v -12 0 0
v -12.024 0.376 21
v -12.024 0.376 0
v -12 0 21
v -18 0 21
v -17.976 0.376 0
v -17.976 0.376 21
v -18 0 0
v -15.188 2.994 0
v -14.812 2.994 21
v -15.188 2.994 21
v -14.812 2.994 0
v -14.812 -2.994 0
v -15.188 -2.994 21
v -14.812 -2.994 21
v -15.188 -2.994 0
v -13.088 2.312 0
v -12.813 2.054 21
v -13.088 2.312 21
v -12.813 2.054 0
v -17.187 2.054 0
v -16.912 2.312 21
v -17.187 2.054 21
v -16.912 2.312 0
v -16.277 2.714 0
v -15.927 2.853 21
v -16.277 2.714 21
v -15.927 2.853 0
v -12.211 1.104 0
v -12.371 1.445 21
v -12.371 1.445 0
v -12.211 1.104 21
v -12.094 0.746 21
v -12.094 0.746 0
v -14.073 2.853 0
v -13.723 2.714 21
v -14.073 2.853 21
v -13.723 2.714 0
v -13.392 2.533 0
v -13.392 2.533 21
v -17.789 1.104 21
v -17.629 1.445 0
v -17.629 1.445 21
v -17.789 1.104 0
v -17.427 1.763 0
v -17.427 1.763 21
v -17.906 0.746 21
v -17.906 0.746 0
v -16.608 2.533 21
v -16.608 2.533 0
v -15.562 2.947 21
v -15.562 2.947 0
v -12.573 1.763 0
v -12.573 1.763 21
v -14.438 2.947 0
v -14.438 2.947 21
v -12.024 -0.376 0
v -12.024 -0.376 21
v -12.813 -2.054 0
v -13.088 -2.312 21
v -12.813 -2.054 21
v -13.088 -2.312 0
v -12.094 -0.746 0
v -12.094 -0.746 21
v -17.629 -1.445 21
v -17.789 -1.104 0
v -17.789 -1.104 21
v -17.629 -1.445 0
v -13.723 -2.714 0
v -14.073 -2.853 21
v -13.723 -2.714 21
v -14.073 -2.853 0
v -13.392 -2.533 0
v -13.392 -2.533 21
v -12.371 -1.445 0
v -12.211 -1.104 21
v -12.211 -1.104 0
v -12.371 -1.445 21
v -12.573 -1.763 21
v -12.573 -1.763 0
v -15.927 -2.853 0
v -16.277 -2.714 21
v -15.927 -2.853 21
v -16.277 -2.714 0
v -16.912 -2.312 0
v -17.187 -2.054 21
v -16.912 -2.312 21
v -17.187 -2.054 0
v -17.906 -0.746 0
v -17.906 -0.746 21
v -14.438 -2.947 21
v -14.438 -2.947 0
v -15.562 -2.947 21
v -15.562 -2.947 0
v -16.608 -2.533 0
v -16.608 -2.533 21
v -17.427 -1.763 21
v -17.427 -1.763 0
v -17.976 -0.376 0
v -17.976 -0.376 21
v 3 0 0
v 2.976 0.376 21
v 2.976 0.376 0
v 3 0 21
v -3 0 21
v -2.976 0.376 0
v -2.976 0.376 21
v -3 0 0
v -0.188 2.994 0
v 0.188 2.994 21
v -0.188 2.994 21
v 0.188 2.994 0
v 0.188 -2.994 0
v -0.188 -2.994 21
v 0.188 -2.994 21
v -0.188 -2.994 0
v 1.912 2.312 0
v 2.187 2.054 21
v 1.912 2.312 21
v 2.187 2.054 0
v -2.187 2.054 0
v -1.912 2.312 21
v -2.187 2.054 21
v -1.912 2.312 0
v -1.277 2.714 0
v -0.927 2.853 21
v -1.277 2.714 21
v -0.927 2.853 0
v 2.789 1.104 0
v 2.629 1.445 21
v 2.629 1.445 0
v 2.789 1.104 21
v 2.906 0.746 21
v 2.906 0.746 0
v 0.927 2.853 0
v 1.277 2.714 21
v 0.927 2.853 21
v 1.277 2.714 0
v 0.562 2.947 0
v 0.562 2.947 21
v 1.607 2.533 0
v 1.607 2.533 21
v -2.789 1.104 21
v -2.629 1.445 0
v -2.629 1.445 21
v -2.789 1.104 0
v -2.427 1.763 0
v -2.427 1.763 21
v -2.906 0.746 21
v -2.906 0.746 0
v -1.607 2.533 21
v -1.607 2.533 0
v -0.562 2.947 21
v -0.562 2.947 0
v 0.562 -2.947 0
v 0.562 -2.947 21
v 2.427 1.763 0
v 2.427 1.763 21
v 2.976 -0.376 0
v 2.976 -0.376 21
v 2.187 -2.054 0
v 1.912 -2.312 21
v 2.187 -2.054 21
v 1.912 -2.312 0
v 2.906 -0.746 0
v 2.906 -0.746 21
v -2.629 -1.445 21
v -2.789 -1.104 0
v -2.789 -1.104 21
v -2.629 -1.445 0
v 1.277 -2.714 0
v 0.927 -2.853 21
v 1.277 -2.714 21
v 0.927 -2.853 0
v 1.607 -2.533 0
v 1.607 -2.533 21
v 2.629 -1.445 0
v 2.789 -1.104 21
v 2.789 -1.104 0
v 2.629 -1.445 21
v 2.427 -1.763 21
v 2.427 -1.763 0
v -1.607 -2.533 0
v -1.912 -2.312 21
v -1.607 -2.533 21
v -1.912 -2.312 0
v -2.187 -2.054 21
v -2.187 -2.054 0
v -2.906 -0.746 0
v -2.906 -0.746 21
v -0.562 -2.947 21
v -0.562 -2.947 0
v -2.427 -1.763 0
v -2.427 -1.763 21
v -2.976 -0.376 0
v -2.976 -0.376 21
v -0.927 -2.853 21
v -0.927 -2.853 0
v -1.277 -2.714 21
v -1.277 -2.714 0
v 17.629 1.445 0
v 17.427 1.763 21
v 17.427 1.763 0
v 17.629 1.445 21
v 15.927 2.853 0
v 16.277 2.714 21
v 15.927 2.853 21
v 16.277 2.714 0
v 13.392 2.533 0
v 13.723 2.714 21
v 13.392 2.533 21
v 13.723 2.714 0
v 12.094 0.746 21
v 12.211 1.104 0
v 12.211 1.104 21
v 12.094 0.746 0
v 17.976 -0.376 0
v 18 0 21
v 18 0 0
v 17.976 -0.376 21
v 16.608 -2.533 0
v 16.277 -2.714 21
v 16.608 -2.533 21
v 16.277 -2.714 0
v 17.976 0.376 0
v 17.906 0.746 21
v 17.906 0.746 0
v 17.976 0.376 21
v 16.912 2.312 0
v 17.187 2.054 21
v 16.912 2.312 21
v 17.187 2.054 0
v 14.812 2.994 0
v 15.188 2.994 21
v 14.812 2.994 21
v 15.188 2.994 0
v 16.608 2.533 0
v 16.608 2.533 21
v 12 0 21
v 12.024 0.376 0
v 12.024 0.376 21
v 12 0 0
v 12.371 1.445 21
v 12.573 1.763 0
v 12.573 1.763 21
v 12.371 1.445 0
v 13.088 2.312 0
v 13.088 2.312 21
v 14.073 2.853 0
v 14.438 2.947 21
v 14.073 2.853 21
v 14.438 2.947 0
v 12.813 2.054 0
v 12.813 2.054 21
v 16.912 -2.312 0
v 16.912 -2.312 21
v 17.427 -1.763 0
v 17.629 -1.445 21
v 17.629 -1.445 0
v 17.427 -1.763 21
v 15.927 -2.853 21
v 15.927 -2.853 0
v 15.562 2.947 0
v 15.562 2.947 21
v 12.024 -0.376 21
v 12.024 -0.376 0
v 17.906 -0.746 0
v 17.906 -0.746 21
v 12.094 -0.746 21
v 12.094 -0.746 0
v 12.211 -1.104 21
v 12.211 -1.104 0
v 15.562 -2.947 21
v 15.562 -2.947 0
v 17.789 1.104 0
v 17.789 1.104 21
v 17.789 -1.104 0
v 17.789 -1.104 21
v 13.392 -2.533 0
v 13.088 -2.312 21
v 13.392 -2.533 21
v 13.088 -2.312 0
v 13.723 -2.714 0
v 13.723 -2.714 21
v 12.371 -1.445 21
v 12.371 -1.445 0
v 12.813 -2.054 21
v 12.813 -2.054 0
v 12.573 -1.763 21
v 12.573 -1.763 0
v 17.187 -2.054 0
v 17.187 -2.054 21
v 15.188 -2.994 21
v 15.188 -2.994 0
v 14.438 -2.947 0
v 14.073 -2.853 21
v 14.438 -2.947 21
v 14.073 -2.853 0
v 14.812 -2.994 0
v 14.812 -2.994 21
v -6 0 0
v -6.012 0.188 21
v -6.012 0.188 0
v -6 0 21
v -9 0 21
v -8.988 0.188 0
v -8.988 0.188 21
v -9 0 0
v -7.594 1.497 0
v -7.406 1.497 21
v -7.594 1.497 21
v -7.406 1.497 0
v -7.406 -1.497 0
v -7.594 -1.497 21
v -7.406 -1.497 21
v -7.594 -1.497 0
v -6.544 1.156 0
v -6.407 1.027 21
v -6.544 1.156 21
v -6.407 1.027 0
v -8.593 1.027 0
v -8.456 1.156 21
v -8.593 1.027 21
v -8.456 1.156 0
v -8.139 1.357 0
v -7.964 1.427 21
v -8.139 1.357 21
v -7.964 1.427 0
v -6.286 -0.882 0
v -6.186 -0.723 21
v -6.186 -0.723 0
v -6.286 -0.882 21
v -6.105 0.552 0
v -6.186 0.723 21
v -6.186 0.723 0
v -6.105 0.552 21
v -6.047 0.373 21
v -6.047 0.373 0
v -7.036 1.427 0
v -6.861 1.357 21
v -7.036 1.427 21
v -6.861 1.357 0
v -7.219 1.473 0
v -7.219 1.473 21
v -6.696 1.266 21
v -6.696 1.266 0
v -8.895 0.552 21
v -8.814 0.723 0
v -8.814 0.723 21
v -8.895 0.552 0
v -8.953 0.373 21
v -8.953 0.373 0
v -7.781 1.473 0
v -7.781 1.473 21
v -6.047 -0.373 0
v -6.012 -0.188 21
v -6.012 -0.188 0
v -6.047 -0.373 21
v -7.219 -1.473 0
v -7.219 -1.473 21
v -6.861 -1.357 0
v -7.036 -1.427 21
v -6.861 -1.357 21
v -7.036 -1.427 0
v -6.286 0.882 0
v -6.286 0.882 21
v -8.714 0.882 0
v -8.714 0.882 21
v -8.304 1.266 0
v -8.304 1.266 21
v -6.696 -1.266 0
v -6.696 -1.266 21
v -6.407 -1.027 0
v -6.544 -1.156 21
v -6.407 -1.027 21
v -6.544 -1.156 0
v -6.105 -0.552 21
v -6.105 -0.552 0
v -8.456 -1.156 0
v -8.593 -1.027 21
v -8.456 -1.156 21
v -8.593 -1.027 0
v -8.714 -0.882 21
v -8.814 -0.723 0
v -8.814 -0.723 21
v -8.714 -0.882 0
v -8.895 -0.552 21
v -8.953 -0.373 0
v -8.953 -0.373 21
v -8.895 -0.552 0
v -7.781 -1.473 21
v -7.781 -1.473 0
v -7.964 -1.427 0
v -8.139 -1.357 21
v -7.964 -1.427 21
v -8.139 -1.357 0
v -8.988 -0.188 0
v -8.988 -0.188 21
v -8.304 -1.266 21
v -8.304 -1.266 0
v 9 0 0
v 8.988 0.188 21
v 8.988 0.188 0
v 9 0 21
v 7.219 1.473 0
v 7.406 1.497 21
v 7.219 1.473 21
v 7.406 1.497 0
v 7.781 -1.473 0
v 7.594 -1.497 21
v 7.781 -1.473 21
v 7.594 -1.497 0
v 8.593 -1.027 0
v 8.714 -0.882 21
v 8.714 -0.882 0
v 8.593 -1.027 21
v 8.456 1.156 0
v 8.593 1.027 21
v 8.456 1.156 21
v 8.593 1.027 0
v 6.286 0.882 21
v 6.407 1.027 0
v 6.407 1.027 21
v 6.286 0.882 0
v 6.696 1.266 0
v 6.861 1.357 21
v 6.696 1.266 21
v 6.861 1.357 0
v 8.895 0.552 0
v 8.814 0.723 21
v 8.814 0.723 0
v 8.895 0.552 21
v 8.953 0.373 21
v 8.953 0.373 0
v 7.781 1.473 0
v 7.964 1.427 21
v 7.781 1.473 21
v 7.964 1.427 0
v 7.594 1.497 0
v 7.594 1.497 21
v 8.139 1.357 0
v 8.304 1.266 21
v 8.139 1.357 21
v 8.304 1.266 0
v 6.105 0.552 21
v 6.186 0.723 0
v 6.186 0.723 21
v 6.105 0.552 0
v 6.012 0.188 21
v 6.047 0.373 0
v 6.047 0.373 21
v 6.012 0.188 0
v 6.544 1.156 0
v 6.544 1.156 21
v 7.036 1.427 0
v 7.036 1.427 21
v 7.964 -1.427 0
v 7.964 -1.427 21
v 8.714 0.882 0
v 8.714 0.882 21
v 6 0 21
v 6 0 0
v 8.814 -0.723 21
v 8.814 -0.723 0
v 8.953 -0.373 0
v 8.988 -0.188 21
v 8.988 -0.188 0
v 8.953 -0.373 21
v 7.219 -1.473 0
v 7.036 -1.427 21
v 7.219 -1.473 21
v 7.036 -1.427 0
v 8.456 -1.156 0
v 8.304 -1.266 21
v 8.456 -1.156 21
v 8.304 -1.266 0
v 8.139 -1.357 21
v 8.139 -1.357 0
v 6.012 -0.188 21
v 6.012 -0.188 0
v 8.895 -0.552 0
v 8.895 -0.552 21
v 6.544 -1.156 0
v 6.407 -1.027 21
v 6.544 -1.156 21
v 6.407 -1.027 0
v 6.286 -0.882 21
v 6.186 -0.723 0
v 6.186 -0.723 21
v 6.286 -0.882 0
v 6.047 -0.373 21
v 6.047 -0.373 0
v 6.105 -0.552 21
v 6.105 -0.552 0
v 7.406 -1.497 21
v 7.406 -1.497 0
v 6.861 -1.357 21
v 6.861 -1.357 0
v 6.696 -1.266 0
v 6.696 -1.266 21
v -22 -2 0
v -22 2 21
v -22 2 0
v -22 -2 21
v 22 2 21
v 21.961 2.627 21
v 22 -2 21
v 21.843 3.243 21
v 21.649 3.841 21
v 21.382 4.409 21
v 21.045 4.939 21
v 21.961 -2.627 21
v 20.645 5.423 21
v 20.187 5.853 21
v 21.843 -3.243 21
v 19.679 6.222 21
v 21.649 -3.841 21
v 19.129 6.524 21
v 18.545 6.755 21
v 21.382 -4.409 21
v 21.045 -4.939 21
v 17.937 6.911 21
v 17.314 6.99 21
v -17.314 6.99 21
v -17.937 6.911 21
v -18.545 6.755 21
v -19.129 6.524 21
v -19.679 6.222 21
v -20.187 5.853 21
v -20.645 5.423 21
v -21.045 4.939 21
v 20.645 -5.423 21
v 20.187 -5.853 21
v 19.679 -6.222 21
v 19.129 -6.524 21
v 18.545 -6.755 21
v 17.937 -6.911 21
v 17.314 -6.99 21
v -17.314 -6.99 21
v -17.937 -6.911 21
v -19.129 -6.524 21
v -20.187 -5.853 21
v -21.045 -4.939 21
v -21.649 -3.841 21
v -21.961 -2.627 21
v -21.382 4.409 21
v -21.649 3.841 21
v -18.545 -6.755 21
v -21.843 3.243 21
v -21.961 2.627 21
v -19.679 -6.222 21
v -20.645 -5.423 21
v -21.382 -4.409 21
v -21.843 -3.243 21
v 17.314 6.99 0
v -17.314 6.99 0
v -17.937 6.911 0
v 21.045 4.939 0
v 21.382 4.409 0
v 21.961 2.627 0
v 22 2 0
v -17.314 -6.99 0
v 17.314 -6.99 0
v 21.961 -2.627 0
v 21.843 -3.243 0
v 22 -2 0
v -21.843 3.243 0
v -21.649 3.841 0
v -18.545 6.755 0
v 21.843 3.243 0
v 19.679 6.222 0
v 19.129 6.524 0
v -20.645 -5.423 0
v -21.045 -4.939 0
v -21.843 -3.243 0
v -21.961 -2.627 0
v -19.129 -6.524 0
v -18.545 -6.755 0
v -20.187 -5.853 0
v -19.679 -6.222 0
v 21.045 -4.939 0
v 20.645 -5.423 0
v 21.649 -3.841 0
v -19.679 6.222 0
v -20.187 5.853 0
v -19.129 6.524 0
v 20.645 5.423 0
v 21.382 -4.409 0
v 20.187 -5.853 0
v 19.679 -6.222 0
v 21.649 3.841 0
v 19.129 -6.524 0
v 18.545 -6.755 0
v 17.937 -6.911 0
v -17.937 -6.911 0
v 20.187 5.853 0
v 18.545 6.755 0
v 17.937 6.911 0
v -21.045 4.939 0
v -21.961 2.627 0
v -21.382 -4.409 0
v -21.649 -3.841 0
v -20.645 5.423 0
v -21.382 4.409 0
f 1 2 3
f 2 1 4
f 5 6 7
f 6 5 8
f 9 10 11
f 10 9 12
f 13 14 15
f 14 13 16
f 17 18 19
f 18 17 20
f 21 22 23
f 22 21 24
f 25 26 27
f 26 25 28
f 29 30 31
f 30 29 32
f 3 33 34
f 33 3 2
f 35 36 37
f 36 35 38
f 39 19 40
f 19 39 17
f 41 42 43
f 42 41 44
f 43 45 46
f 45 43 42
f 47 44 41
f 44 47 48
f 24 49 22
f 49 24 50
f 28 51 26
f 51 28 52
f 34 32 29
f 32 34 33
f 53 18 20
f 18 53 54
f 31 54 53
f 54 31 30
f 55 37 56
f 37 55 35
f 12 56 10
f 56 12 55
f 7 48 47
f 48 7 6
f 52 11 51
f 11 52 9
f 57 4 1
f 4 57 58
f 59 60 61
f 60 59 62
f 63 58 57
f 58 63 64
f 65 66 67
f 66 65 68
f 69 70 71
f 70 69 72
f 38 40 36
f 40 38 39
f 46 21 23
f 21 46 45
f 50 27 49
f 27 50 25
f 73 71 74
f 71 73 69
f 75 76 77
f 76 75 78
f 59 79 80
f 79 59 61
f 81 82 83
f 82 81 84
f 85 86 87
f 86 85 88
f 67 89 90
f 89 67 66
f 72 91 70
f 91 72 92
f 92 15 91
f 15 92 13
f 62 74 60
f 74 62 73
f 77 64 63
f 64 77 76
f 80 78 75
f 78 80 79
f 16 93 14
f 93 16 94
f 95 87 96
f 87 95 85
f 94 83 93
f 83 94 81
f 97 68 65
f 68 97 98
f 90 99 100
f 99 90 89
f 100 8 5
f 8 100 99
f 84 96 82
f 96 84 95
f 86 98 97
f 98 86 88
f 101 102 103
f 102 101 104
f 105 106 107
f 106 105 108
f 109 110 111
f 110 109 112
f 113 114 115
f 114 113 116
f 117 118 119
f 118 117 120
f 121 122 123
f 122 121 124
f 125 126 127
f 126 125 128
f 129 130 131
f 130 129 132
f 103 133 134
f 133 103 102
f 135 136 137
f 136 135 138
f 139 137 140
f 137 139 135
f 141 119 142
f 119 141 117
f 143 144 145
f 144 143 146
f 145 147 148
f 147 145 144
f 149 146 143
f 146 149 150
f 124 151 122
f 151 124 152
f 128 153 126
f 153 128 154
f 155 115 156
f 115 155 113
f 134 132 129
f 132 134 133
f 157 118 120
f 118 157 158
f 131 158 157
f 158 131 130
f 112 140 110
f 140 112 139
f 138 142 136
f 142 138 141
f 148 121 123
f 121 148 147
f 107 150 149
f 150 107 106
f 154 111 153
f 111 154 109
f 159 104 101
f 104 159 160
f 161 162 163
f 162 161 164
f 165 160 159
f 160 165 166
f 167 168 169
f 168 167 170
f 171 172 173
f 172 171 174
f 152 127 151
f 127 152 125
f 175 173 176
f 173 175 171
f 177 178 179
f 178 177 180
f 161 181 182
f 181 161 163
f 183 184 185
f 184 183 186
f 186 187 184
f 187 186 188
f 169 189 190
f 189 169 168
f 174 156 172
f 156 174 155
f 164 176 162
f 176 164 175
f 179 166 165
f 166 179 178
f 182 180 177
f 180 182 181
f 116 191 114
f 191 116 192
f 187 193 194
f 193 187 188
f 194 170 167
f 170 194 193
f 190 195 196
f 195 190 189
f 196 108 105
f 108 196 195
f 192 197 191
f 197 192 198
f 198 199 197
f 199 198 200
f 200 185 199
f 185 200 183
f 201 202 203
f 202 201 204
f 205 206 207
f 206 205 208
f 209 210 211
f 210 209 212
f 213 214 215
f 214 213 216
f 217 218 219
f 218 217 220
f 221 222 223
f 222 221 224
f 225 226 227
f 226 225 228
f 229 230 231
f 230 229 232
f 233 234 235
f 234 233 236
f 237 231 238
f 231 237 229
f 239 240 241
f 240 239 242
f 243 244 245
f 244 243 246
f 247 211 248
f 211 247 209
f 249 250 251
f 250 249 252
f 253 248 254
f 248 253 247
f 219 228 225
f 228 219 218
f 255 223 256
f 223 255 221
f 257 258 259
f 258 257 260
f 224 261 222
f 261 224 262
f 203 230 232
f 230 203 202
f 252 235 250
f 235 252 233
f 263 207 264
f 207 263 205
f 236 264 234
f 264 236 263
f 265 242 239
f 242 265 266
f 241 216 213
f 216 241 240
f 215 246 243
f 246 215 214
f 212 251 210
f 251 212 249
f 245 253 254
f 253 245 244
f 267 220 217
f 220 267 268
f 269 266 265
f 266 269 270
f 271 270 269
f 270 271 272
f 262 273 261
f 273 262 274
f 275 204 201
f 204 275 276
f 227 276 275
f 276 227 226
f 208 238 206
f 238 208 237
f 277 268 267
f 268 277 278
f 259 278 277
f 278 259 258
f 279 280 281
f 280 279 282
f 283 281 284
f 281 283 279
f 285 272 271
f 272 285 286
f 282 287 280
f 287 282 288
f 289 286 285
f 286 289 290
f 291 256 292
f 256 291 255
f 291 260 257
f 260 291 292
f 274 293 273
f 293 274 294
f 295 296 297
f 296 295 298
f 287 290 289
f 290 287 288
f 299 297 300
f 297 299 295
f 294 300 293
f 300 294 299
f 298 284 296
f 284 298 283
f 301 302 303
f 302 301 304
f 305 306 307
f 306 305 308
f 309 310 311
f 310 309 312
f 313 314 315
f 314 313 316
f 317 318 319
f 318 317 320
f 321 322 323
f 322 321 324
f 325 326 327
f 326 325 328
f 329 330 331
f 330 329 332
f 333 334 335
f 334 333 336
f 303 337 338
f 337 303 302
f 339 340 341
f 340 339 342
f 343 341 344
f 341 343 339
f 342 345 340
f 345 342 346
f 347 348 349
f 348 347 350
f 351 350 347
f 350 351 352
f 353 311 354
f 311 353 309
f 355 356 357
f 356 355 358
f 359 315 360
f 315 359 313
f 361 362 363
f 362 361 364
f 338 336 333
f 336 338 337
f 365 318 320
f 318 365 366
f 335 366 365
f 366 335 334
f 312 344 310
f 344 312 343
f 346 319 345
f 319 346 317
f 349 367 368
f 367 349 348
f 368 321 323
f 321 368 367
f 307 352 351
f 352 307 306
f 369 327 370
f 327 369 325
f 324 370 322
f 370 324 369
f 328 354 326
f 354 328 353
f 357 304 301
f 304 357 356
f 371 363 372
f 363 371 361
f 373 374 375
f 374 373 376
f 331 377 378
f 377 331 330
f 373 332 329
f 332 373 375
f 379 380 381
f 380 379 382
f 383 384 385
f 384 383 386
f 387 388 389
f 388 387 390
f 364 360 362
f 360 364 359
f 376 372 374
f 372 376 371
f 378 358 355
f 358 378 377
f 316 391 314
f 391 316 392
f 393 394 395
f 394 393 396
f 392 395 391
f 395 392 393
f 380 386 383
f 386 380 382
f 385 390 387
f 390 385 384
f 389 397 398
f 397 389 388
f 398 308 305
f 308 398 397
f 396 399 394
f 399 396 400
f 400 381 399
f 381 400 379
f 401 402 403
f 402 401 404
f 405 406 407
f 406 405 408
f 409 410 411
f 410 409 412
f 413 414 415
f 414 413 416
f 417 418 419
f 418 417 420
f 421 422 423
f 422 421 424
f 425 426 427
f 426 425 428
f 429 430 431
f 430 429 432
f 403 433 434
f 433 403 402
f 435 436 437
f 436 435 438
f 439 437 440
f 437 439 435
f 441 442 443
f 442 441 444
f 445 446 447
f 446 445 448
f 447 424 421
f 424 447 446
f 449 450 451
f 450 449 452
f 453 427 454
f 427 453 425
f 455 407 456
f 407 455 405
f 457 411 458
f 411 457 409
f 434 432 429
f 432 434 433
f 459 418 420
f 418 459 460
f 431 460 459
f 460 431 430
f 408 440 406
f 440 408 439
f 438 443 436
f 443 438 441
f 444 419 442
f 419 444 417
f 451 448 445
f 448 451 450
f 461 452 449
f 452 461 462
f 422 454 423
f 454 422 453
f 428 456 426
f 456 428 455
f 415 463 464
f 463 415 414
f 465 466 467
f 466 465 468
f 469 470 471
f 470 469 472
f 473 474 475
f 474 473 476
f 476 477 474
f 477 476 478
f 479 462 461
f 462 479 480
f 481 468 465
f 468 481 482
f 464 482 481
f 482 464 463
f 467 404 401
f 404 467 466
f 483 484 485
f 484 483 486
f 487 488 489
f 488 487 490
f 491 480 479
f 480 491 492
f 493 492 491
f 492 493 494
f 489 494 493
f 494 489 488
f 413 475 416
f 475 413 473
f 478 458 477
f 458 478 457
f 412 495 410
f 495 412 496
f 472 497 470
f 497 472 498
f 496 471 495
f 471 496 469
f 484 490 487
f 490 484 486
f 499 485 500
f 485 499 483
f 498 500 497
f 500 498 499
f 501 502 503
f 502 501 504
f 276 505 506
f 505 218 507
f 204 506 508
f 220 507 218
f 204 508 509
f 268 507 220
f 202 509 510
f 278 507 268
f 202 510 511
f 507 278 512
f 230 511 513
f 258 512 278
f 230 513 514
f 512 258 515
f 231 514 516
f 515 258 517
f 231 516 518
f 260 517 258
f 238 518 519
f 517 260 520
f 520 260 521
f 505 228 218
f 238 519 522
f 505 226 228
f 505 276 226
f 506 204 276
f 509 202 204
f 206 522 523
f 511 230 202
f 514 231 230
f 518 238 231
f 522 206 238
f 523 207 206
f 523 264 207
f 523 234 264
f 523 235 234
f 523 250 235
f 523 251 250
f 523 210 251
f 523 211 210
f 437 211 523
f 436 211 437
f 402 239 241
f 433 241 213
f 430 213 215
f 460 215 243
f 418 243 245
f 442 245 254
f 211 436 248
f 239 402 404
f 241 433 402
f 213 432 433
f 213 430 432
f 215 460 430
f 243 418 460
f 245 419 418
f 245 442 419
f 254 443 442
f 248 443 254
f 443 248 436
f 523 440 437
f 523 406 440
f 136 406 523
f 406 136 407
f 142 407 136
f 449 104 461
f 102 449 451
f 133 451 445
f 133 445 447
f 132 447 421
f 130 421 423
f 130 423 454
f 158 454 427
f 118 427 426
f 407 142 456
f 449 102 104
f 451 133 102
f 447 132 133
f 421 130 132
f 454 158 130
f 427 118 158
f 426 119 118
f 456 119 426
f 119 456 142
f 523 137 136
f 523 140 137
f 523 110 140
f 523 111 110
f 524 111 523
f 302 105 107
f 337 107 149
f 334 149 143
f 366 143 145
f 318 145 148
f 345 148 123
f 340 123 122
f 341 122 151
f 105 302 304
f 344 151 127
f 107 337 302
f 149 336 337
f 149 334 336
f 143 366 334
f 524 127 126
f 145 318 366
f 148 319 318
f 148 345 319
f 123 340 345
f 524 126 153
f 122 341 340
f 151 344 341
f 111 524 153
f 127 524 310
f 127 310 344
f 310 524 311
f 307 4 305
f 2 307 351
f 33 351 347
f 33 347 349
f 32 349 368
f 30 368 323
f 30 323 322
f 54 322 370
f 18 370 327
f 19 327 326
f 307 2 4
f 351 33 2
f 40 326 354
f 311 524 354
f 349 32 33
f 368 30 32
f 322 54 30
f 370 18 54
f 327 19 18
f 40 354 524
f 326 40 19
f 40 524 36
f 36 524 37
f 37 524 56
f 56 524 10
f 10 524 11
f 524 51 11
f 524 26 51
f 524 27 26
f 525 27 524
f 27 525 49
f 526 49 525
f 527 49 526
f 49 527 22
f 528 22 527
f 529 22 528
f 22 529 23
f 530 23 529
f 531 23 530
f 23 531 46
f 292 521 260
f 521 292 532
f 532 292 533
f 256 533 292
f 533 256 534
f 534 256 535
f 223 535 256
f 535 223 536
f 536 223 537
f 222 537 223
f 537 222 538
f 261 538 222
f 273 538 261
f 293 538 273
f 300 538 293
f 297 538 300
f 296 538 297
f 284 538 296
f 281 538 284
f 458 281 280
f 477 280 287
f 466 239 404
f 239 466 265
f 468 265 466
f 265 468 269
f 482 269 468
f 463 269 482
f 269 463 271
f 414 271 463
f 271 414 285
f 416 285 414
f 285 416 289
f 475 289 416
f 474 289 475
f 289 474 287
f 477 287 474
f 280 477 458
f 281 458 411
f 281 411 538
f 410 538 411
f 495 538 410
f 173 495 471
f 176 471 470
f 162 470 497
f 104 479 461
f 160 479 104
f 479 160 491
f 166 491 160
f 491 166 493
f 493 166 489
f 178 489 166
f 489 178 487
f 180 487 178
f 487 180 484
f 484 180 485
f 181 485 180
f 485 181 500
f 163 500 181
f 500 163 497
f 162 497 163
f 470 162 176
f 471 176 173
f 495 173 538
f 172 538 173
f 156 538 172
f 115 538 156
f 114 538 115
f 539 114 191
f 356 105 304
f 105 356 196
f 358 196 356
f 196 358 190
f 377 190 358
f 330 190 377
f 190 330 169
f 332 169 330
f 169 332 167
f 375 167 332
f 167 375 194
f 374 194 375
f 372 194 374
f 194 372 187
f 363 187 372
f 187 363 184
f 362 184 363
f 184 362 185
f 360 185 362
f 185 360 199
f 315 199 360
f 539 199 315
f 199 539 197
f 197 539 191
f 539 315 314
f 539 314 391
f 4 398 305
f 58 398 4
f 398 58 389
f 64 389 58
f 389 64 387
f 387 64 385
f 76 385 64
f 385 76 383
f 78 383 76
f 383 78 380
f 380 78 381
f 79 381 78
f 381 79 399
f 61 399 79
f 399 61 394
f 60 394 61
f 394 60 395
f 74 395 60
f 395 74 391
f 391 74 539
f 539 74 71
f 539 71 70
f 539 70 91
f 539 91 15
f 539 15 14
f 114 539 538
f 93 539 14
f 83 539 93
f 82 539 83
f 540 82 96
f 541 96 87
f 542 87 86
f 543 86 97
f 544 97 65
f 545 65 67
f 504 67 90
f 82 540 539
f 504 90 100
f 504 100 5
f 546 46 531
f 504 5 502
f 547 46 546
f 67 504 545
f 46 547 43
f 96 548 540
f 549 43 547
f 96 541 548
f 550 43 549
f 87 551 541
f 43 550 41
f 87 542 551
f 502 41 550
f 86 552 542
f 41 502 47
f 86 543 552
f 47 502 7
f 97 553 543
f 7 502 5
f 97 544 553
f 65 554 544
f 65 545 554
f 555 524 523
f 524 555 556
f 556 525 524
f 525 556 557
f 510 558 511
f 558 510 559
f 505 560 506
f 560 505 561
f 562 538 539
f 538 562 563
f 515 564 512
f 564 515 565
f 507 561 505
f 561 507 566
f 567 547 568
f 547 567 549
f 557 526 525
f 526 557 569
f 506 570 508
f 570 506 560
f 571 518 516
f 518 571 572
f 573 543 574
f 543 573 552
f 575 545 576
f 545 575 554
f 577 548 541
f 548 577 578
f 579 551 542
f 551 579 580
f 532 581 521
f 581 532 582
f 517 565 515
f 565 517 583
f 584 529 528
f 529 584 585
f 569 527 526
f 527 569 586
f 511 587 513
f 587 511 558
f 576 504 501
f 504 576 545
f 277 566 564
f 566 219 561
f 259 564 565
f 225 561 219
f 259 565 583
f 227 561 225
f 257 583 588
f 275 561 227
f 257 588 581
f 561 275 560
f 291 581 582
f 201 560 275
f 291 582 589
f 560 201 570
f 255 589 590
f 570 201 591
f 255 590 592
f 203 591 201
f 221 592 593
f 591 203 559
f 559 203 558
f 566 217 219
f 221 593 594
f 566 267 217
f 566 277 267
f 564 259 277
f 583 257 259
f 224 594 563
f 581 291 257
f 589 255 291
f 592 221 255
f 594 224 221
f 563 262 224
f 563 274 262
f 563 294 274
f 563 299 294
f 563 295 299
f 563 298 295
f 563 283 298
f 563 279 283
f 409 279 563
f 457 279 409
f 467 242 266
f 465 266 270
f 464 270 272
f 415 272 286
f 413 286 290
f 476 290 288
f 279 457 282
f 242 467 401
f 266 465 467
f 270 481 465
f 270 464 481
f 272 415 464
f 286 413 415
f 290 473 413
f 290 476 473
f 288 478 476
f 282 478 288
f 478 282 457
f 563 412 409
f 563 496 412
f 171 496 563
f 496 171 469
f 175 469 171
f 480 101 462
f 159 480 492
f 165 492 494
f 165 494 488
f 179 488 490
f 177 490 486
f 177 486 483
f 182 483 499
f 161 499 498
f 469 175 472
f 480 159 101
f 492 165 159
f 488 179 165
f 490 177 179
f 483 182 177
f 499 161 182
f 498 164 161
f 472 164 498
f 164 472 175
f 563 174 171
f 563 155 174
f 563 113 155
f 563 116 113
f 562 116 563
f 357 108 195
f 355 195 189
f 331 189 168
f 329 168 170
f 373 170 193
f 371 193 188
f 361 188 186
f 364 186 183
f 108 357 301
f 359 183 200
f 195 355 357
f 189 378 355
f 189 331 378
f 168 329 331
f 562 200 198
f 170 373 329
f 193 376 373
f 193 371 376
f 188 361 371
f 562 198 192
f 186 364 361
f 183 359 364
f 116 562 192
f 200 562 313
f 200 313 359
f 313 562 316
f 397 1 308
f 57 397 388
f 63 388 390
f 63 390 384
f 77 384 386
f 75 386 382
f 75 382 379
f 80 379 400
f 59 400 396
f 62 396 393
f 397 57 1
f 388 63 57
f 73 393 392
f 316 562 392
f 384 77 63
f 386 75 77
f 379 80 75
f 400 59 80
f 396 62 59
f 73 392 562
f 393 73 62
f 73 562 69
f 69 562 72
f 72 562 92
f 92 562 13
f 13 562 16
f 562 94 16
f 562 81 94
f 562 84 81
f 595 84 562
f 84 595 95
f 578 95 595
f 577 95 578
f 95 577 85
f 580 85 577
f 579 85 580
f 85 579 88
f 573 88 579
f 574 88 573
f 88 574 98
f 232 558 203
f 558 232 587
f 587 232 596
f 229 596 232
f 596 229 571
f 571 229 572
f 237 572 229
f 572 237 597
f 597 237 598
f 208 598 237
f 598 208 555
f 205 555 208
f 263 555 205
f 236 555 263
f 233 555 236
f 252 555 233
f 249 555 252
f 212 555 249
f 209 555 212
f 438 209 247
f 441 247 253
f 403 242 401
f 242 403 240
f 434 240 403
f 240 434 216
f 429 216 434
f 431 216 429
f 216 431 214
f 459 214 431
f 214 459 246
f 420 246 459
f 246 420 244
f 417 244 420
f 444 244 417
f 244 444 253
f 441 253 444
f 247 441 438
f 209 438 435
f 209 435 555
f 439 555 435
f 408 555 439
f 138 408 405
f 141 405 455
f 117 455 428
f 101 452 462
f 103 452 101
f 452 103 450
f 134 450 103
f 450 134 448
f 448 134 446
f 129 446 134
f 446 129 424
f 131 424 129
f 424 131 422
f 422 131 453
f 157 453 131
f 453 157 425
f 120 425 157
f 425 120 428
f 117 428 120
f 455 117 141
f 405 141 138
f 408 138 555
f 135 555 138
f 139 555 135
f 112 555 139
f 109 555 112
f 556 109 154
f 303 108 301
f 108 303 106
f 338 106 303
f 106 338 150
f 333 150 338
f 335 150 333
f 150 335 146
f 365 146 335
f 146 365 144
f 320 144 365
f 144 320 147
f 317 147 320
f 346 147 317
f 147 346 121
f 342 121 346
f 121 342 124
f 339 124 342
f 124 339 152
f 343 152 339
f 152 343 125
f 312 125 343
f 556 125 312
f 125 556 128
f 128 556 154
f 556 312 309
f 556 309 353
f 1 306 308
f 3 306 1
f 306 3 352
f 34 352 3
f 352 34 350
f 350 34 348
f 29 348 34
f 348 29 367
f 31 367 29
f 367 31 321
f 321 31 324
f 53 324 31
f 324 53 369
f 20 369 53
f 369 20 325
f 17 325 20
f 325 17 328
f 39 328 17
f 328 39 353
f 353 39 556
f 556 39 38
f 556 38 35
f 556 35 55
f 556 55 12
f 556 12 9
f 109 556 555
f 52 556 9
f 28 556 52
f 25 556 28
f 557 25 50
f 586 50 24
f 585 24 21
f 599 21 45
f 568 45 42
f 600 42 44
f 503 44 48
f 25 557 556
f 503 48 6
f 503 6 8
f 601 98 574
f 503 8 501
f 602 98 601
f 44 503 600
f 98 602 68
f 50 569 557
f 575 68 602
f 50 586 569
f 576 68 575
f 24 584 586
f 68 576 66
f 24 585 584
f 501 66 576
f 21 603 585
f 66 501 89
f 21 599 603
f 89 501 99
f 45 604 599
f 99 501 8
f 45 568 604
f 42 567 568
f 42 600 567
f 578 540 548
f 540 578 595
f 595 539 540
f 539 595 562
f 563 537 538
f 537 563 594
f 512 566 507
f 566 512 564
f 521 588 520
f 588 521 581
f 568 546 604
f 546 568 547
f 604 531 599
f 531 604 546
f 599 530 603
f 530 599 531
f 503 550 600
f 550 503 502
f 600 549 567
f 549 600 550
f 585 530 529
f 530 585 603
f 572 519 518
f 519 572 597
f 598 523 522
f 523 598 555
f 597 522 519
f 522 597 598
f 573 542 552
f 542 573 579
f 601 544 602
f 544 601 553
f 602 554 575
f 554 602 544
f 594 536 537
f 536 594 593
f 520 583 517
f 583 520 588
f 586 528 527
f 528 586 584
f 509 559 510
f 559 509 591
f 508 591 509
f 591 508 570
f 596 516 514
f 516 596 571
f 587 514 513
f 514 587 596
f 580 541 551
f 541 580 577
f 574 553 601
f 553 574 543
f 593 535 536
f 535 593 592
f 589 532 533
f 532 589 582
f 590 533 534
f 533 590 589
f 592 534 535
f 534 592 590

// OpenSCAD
$fn = 50;


difference() {
	union() {
		hull() {
			translate(v = [-17.0000000000, 2.0000000000, 0]) {
				cylinder(h = 21, r = 5);
			}
			translate(v = [17.0000000000, 2.0000000000, 0]) {
				cylinder(h = 21, r = 5);
			}
			translate(v = [-17.0000000000, -2.0000000000, 0]) {
				cylinder(h = 21, r = 5);
			}
			translate(v = [17.0000000000, -2.0000000000, 0]) {
				cylinder(h = 21, r = 5);
			}
		}
	}
	union() {
		translate(v = [-15.0000000000, 0.0000000000, 0]) {
			translate(v = [0, 0, -100]) {
				cylinder(h = 200, r = 3.0000000000);
			}
		}
		translate(v = [0, 0, -100]) {
			cylinder(h = 200, r = 3.0000000000);
		}
		translate(v = [15.0000000000, 0.0000000000, 0]) {
			translate(v = [0, 0, -100]) {
				cylinder(h = 200, r = 3.0000000000);
			}
		}
		translate(v = [-15.0000000000, 0.0000000000, 0]) {
			translate(v = [0, 0, -100]) {
				cylinder(h = 200, r = 1.5000000000);
			}
		}
		translate(v = [-7.5000000000, 0.0000000000, 0]) {
			translate(v = [0, 0, -100]) {
				cylinder(h = 200, r = 1.5000000000);
			}
		}
		translate(v = [0, 0, -100]) {
			cylinder(h = 200, r = 1.5000000000);
		}
		translate(v = [7.5000000000, 0.0000000000, 0]) {
			translate(v = [0, 0, -100]) {
				cylinder(h = 200, r = 1.5000000000);
			}
		}
		translate(v = [15.0000000000, 0.0000000000, 0]) {
			translate(v = [0, 0, -100]) {
				cylinder(h = 200, r = 1.5000000000);
			}
		}
	}
}
